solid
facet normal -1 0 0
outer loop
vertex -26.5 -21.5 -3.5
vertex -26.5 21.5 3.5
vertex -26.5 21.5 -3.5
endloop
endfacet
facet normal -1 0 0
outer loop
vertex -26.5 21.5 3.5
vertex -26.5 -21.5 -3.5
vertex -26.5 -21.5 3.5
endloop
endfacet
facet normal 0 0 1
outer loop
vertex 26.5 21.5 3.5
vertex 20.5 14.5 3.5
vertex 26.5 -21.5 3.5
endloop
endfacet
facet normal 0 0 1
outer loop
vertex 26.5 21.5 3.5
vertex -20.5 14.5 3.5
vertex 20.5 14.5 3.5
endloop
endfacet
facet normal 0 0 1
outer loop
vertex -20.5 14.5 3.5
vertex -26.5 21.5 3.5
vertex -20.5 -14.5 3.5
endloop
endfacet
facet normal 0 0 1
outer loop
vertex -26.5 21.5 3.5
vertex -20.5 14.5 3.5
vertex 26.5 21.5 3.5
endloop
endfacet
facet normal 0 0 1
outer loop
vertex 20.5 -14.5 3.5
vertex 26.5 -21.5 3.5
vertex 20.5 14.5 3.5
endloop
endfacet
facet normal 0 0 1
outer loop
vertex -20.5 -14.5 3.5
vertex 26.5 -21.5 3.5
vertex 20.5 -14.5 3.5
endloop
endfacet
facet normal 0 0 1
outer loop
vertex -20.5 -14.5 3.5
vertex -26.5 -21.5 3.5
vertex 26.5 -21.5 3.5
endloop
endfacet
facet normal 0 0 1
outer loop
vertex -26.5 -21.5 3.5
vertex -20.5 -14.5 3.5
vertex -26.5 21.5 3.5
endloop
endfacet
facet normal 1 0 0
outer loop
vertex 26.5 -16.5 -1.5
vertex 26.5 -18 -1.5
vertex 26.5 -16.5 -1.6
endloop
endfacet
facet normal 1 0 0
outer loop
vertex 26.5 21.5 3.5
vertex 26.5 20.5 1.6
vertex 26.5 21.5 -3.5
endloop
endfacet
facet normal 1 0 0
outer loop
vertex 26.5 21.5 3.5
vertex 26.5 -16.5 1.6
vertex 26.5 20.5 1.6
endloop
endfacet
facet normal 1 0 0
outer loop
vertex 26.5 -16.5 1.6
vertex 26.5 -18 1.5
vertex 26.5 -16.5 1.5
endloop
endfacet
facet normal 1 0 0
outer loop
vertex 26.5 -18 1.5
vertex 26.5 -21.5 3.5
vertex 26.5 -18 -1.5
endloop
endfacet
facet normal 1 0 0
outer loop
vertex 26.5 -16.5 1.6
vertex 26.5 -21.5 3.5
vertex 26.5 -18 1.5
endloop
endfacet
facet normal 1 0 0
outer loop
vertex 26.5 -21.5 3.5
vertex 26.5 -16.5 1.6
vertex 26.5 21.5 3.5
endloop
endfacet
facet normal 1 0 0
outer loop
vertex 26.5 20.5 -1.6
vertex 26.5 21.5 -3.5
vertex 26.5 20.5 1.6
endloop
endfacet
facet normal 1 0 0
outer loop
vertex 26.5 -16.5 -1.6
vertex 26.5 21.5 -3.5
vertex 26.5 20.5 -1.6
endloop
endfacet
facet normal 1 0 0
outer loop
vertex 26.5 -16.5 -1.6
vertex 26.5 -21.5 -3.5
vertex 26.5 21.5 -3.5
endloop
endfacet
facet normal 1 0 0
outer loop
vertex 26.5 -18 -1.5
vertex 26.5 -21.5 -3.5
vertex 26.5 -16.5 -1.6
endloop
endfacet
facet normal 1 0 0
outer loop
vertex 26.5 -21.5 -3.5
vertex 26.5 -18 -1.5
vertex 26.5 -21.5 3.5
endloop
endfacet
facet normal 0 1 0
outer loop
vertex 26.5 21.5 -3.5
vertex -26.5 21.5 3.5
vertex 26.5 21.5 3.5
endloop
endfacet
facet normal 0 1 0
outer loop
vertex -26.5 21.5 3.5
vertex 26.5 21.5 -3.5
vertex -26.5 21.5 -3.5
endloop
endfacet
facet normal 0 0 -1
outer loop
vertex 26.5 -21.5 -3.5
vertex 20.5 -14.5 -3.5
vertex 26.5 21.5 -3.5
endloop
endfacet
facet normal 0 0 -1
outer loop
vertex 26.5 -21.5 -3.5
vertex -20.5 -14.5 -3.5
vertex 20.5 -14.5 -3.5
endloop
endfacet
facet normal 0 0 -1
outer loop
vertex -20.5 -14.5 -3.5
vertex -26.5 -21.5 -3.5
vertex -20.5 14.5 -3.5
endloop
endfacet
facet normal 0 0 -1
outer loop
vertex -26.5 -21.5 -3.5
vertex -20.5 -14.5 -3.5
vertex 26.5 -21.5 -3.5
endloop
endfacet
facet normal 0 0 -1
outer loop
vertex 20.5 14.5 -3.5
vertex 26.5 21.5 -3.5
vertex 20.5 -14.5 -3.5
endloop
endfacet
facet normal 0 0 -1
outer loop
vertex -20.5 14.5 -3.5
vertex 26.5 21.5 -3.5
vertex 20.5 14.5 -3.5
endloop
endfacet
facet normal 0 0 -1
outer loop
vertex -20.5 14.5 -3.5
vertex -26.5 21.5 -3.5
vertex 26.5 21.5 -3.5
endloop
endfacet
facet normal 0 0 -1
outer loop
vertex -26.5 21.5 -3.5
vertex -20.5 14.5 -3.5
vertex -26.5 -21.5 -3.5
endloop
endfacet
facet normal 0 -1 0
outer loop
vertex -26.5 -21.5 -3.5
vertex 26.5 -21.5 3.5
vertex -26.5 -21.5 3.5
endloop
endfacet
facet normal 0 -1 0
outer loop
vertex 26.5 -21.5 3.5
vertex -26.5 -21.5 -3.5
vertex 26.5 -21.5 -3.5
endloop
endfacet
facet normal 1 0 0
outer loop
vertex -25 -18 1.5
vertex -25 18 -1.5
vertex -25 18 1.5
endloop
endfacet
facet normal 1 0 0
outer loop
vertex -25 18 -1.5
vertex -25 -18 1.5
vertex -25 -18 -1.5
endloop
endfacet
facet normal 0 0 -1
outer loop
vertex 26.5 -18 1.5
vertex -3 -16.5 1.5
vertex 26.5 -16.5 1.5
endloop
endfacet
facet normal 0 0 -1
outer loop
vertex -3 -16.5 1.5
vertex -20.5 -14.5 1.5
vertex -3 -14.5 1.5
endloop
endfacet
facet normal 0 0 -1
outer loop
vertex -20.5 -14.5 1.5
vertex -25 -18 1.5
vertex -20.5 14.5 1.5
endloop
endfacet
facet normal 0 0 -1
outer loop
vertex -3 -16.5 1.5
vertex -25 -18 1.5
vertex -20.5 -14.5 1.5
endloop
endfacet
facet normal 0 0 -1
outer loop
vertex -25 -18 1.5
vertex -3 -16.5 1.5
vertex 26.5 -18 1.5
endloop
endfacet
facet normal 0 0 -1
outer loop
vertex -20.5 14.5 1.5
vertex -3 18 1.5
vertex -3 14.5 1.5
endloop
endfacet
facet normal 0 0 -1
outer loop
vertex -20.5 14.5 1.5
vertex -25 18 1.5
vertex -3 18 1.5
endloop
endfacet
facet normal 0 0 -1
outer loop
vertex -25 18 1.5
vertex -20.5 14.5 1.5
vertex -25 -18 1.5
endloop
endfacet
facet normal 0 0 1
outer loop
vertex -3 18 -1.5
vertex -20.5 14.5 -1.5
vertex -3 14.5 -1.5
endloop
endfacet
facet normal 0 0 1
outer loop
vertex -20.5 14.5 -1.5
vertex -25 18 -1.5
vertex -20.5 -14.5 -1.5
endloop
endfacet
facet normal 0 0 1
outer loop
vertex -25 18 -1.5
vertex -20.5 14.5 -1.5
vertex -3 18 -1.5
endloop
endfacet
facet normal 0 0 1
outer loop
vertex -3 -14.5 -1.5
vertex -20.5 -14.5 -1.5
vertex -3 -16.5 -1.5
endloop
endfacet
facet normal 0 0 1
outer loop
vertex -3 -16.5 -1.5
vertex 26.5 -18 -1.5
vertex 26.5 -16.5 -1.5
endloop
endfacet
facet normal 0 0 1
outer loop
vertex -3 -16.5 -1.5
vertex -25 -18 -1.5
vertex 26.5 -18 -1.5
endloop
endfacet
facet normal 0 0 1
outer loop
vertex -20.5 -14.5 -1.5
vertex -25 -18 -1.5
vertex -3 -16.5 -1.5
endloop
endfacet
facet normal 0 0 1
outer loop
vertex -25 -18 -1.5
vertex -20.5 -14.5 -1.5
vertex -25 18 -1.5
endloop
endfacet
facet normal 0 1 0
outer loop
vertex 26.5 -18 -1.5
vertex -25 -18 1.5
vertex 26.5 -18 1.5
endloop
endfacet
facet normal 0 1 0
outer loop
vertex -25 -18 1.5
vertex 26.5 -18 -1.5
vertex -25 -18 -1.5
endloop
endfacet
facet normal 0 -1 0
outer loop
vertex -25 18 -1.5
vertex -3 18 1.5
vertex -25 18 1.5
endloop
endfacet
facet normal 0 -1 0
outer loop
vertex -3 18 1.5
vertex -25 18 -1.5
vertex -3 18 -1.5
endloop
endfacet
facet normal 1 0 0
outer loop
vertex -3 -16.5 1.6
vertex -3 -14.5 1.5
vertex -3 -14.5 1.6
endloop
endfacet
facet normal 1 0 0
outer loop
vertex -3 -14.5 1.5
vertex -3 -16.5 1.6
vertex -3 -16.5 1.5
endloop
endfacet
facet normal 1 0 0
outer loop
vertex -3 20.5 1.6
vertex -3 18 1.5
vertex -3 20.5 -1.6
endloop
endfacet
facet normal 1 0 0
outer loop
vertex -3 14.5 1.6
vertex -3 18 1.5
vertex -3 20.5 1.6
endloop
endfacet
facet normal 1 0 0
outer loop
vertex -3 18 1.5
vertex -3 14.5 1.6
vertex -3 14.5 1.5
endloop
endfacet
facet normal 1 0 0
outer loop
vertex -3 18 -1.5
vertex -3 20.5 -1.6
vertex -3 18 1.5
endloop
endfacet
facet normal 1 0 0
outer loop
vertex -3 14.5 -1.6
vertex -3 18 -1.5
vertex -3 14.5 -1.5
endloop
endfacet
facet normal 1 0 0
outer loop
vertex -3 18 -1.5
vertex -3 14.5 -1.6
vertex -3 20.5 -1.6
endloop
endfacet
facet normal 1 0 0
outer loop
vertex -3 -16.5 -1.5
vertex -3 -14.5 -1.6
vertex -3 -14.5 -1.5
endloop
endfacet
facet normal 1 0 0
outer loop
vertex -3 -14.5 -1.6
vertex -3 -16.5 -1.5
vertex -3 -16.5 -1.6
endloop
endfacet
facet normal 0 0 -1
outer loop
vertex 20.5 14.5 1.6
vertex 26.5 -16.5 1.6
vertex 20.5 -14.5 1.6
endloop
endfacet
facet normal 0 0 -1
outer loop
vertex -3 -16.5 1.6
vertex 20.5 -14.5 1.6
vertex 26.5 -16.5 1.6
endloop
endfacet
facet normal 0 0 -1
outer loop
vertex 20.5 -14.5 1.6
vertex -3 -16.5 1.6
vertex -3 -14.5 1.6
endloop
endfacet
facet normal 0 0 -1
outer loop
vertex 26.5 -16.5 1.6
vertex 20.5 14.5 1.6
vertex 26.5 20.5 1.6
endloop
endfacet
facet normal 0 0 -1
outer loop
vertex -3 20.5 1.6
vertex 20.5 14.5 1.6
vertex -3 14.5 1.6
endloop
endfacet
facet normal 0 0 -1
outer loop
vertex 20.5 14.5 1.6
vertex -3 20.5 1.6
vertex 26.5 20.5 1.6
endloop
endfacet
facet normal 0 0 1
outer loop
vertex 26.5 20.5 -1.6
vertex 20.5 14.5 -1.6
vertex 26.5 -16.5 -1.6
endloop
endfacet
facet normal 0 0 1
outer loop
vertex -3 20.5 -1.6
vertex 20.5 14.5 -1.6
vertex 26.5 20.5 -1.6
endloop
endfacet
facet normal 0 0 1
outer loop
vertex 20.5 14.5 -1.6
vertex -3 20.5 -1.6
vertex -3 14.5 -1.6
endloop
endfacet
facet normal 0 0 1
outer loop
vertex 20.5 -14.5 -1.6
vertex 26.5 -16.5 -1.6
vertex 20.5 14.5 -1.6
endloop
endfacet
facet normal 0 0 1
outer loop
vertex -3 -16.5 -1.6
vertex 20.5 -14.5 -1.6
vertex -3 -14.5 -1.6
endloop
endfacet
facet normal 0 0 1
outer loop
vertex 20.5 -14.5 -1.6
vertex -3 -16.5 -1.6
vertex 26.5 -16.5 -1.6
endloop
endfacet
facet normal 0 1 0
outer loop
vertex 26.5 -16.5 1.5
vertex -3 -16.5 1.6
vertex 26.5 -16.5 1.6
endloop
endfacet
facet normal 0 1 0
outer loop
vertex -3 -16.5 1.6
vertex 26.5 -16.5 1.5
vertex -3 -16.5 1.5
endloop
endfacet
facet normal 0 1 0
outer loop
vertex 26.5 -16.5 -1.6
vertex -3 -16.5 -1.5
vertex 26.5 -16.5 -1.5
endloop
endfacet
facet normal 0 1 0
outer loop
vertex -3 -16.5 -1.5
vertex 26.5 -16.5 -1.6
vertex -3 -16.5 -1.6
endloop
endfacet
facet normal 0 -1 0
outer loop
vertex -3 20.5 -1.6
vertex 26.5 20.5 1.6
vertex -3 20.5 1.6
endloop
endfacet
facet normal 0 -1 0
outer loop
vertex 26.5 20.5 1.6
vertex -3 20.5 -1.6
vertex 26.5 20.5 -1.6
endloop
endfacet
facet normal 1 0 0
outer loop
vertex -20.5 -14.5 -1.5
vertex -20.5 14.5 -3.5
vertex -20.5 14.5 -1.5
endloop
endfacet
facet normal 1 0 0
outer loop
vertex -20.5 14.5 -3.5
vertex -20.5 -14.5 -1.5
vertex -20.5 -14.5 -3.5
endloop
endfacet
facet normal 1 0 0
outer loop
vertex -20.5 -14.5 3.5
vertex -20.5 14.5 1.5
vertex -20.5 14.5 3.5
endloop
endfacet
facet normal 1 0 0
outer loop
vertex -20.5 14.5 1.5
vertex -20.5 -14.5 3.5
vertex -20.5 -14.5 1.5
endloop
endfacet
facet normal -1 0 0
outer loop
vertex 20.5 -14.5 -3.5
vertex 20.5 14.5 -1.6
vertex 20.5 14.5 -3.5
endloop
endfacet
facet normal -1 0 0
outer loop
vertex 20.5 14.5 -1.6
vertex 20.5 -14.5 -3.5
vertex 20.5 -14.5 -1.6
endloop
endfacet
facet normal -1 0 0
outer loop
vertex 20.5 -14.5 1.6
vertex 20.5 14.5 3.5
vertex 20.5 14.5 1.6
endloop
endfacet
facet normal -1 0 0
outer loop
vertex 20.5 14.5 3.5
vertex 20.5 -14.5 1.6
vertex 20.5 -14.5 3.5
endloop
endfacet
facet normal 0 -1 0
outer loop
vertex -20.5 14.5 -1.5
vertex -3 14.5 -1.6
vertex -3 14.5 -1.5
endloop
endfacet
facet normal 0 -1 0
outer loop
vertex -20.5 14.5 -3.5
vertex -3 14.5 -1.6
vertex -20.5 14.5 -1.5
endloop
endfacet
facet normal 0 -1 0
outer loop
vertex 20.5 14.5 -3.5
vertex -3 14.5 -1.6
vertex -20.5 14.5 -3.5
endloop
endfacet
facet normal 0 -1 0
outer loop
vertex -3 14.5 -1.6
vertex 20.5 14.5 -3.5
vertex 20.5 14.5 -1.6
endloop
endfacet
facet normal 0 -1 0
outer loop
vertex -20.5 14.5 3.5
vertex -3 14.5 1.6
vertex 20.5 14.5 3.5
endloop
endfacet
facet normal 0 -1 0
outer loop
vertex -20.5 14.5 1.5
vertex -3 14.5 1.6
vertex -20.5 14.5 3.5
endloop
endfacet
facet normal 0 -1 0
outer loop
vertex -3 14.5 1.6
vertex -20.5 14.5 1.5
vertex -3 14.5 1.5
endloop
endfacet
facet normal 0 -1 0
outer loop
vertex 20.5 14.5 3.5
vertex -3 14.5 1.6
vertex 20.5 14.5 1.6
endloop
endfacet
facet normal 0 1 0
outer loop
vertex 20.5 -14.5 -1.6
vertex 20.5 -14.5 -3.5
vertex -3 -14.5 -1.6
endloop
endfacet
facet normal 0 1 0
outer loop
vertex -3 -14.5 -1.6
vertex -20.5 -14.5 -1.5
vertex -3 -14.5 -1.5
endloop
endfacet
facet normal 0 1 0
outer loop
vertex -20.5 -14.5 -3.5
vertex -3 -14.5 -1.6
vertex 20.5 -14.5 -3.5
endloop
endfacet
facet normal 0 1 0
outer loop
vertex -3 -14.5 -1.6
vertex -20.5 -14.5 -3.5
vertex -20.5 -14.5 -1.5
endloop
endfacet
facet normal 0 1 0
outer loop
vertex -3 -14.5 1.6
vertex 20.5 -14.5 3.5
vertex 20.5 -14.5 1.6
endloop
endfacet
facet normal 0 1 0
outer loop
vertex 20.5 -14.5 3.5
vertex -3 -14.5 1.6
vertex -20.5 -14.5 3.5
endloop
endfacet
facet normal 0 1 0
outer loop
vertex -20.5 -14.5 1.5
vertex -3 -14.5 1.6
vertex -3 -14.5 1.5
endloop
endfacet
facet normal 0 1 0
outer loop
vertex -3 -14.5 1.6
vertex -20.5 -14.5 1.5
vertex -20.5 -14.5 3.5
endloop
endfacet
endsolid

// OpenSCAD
module rfid_antenna_housing(){
	difference(){
		cube([53,43,7], center=true); // rfid antenna outside;
		translate([3,0,0]) cube([56,36,3], center=true); // rfid antenna groove;
         color("green") translate([12,2,0]) cube([30,37,3.2], center=true); // rfid antenna groove, expand for wires
		cube([41,29,30], center=true); //rfid antenna loop inside  
	}
}
       

rfid_antenna_housing();
